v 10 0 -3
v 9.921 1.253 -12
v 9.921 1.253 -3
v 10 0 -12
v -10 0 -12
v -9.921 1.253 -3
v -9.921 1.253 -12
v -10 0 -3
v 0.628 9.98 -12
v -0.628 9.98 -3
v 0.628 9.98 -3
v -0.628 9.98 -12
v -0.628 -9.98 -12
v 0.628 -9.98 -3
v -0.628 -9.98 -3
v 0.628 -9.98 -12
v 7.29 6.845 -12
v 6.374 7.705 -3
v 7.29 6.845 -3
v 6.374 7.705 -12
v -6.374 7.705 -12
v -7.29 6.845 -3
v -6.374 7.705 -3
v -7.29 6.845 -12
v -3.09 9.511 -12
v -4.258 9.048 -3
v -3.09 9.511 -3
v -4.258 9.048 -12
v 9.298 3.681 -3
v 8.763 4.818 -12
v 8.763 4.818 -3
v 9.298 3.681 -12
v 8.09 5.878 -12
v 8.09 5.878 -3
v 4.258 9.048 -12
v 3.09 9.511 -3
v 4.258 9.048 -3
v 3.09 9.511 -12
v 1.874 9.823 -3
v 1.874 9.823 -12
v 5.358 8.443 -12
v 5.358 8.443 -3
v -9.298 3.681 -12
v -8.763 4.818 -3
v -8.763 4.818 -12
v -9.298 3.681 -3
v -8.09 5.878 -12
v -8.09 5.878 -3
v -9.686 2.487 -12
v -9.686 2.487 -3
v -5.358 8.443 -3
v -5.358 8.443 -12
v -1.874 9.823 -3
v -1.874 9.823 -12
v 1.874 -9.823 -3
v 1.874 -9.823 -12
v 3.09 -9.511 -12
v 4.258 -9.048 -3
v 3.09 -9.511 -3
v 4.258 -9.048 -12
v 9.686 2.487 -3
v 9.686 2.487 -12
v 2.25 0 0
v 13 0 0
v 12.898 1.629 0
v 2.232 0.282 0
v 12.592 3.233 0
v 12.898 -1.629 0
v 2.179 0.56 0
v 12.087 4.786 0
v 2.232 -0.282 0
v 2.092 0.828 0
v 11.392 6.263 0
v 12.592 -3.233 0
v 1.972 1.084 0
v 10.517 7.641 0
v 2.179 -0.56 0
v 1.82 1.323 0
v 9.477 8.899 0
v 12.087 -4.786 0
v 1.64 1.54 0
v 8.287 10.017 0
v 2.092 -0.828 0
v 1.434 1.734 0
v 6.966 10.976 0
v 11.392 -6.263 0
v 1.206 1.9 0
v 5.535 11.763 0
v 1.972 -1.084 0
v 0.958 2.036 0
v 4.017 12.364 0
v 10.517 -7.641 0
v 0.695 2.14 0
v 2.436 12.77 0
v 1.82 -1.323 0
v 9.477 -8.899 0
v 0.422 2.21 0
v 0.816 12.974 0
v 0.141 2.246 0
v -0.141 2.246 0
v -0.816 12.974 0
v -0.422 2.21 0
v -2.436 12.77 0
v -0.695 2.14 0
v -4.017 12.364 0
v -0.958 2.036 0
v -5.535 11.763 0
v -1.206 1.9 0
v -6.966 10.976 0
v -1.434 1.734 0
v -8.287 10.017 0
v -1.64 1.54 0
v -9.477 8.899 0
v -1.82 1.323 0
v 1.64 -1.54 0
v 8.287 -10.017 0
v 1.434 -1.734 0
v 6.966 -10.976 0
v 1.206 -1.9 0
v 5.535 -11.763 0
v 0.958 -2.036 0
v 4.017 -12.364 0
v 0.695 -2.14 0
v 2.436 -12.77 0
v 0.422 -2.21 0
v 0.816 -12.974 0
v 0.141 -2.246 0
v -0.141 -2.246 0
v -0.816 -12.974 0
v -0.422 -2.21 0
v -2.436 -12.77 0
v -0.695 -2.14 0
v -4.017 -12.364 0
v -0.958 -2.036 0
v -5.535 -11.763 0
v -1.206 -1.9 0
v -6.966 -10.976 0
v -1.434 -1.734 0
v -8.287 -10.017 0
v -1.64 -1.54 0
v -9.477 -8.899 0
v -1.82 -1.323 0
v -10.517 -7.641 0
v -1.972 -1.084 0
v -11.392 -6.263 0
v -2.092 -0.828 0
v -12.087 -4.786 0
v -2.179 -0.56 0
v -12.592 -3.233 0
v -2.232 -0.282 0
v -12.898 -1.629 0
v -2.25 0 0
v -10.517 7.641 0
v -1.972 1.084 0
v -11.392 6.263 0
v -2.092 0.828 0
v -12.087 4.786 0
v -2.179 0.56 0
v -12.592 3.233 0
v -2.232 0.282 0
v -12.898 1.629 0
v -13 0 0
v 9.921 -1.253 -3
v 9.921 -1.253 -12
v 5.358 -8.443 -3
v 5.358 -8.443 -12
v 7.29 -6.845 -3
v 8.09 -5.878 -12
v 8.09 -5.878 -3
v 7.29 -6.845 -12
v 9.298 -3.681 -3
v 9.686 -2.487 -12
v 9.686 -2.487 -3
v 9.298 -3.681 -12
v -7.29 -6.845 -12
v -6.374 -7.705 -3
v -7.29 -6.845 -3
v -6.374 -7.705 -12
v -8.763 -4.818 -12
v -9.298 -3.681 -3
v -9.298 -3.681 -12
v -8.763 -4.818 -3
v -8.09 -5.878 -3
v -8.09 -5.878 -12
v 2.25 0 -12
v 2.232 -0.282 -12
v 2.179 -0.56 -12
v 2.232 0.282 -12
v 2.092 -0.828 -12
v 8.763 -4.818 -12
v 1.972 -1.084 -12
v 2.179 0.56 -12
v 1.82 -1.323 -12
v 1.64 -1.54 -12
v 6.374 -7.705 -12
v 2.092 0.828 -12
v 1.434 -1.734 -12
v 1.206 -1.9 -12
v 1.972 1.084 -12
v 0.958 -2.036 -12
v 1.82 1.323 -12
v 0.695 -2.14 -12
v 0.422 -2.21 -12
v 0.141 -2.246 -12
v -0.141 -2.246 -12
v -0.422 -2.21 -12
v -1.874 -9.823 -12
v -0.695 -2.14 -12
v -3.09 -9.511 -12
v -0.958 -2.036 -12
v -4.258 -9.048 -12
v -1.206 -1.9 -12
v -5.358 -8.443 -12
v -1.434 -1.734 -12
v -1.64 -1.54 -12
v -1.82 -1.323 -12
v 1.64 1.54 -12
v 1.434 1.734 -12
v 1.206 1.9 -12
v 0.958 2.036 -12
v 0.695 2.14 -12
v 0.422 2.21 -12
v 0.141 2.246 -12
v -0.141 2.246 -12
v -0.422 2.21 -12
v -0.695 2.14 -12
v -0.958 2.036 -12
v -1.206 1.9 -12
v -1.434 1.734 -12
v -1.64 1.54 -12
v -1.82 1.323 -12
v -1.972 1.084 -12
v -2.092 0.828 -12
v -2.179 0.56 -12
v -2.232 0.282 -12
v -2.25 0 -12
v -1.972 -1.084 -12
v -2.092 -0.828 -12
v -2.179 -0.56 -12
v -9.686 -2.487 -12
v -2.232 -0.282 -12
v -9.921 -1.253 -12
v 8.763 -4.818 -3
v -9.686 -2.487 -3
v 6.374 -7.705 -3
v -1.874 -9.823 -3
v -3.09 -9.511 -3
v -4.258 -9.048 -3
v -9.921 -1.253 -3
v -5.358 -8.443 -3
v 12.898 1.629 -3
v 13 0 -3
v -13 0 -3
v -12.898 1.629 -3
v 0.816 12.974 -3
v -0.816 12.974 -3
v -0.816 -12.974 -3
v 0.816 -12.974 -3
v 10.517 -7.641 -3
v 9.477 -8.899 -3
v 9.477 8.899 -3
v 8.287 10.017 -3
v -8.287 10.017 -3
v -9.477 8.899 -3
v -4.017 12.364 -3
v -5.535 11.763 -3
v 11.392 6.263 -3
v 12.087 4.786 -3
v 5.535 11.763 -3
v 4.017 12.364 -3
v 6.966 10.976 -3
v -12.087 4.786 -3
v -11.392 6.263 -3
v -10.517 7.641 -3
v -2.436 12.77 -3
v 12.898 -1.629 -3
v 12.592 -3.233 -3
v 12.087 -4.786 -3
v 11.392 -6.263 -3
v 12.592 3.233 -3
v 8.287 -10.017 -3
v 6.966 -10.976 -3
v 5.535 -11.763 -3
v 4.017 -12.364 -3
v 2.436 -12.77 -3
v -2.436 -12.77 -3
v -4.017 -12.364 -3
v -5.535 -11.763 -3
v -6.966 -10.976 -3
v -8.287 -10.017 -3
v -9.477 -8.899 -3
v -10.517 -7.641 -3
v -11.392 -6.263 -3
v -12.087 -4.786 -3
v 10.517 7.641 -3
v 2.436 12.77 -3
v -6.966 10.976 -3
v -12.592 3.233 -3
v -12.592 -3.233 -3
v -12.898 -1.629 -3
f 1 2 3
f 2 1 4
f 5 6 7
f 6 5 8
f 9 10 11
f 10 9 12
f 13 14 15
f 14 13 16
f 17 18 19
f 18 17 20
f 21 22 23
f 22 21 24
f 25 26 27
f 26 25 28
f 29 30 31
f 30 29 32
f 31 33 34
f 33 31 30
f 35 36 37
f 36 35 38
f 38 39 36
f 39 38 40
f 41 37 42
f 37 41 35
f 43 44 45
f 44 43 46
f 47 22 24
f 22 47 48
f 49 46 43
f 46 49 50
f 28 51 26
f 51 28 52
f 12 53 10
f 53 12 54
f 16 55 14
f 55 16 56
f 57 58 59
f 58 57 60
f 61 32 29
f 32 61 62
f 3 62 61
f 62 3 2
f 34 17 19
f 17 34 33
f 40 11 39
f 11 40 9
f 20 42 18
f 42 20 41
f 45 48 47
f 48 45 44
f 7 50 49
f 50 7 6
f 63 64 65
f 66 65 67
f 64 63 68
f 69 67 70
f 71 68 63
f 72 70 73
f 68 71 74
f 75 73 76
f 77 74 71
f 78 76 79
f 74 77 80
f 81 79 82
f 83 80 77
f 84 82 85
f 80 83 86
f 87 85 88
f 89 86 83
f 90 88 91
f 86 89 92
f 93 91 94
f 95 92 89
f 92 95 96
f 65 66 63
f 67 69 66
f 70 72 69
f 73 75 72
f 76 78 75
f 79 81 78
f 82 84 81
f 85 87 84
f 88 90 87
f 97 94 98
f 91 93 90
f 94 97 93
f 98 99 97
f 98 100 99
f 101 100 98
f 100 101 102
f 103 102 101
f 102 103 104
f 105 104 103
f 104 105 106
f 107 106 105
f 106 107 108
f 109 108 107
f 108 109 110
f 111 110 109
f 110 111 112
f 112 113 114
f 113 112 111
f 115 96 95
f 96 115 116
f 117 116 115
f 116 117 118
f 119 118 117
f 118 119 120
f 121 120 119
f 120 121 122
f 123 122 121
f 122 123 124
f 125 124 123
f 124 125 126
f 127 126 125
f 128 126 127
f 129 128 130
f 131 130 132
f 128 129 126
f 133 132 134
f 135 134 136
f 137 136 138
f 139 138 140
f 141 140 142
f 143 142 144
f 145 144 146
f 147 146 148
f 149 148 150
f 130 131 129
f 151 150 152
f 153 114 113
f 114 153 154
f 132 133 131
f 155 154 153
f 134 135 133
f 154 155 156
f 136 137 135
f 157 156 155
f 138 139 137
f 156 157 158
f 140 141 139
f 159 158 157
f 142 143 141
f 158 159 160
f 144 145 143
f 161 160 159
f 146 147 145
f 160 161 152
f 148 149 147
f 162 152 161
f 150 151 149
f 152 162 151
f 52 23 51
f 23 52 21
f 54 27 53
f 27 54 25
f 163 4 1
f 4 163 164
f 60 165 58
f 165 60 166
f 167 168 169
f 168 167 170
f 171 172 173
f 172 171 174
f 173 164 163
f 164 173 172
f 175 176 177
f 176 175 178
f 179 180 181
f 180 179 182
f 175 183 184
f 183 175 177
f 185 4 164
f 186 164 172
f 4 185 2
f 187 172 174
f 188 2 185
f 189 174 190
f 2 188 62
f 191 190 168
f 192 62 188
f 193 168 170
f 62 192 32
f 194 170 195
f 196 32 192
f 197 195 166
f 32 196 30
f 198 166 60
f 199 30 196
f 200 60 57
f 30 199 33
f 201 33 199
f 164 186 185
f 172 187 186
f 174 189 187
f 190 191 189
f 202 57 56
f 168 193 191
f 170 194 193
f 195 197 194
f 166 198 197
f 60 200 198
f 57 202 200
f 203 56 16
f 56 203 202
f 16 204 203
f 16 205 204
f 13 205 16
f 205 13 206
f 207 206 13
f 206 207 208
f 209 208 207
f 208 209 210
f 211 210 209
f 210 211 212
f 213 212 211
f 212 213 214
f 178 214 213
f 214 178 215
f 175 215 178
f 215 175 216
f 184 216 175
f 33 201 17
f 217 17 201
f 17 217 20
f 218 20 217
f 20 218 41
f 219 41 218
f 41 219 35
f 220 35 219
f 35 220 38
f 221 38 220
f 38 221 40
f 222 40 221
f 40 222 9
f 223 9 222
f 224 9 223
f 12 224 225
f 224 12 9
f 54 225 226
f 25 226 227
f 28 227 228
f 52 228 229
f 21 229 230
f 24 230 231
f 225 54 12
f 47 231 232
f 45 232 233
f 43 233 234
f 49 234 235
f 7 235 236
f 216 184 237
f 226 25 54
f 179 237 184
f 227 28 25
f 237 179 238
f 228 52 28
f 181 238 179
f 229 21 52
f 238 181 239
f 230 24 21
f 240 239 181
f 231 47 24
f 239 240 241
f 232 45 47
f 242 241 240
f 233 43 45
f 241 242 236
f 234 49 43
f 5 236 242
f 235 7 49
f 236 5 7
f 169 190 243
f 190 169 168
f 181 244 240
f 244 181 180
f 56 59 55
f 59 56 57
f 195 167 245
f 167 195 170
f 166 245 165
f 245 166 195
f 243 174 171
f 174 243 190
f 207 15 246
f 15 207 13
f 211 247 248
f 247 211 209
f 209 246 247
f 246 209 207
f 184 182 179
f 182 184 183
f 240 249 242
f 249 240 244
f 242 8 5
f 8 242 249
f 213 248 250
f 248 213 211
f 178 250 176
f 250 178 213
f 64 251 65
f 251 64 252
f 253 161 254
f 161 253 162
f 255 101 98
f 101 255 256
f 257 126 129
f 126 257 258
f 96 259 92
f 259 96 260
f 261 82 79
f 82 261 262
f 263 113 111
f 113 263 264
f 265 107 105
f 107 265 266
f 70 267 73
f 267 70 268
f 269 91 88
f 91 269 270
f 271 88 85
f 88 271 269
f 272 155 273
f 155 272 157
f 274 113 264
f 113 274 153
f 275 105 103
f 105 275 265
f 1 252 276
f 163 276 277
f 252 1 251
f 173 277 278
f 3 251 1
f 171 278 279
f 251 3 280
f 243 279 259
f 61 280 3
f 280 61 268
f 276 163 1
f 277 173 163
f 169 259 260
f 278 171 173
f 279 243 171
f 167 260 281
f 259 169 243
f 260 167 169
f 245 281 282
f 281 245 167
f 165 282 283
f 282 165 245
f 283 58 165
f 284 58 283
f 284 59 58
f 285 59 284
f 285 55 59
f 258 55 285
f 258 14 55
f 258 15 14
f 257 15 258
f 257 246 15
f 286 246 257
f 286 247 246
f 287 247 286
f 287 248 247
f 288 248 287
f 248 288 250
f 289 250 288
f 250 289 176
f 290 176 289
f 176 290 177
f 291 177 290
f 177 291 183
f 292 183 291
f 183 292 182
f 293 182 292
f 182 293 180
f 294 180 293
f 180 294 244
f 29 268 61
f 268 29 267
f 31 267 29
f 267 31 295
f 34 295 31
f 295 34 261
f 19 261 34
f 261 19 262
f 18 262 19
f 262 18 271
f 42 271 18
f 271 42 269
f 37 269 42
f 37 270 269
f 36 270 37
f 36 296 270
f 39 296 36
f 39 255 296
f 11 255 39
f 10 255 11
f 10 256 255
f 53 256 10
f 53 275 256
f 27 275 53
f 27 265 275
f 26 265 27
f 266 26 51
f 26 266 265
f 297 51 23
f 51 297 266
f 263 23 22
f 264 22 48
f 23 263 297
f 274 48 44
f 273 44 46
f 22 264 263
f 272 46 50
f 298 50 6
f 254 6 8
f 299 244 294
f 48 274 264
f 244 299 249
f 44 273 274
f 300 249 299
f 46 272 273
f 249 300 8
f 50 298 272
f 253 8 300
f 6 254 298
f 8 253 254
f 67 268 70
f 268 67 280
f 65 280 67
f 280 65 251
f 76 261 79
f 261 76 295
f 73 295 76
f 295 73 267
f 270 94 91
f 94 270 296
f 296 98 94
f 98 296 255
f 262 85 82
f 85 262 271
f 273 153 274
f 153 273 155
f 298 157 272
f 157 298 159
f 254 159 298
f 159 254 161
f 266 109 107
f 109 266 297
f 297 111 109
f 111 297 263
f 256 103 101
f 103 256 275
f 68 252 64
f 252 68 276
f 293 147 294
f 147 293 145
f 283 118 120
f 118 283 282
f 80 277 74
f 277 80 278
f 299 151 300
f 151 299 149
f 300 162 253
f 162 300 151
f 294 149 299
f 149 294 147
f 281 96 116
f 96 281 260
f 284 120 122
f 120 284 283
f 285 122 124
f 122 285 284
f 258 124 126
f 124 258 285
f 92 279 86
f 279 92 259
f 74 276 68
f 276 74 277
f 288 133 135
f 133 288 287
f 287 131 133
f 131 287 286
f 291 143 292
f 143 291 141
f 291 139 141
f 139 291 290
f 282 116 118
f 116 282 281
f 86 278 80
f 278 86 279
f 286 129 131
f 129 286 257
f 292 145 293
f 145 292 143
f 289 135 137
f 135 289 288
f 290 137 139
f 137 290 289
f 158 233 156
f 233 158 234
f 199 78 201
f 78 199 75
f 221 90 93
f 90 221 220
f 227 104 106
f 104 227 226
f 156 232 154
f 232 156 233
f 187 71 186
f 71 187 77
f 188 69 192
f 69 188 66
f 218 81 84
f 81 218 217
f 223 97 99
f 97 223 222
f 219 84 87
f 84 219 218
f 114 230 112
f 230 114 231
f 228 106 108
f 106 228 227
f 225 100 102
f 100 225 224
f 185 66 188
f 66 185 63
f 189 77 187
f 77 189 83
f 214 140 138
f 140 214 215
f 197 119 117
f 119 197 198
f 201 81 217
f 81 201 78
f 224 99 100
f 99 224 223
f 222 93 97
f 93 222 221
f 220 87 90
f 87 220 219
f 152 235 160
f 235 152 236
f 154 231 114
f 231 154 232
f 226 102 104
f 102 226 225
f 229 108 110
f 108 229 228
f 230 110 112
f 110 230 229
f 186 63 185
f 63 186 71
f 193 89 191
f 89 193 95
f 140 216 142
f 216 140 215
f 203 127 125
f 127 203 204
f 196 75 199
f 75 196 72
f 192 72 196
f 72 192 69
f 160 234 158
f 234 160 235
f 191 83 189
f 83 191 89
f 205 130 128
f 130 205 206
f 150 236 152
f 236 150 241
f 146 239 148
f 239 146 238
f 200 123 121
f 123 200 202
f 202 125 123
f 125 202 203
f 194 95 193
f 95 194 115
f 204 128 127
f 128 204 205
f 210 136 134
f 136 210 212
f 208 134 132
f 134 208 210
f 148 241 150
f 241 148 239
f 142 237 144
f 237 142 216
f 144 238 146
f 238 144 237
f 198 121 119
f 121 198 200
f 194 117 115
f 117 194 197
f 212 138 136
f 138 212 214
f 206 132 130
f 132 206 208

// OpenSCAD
$fn = 50;


difference() {
	union() {
		translate(v = [0, 0, -12.0000000000]) {
			cylinder(h = 12, r = 10.0000000000);
		}
		translate(v = [0, 0, -3.0000000000]) {
			cylinder(h = 3, r = 13.0000000000);
		}
	}
	union() {
		#translate(v = [0, 0, -12]) {
			cylinder(h = 12, r = 2.2500000000);
		}
	}
}
